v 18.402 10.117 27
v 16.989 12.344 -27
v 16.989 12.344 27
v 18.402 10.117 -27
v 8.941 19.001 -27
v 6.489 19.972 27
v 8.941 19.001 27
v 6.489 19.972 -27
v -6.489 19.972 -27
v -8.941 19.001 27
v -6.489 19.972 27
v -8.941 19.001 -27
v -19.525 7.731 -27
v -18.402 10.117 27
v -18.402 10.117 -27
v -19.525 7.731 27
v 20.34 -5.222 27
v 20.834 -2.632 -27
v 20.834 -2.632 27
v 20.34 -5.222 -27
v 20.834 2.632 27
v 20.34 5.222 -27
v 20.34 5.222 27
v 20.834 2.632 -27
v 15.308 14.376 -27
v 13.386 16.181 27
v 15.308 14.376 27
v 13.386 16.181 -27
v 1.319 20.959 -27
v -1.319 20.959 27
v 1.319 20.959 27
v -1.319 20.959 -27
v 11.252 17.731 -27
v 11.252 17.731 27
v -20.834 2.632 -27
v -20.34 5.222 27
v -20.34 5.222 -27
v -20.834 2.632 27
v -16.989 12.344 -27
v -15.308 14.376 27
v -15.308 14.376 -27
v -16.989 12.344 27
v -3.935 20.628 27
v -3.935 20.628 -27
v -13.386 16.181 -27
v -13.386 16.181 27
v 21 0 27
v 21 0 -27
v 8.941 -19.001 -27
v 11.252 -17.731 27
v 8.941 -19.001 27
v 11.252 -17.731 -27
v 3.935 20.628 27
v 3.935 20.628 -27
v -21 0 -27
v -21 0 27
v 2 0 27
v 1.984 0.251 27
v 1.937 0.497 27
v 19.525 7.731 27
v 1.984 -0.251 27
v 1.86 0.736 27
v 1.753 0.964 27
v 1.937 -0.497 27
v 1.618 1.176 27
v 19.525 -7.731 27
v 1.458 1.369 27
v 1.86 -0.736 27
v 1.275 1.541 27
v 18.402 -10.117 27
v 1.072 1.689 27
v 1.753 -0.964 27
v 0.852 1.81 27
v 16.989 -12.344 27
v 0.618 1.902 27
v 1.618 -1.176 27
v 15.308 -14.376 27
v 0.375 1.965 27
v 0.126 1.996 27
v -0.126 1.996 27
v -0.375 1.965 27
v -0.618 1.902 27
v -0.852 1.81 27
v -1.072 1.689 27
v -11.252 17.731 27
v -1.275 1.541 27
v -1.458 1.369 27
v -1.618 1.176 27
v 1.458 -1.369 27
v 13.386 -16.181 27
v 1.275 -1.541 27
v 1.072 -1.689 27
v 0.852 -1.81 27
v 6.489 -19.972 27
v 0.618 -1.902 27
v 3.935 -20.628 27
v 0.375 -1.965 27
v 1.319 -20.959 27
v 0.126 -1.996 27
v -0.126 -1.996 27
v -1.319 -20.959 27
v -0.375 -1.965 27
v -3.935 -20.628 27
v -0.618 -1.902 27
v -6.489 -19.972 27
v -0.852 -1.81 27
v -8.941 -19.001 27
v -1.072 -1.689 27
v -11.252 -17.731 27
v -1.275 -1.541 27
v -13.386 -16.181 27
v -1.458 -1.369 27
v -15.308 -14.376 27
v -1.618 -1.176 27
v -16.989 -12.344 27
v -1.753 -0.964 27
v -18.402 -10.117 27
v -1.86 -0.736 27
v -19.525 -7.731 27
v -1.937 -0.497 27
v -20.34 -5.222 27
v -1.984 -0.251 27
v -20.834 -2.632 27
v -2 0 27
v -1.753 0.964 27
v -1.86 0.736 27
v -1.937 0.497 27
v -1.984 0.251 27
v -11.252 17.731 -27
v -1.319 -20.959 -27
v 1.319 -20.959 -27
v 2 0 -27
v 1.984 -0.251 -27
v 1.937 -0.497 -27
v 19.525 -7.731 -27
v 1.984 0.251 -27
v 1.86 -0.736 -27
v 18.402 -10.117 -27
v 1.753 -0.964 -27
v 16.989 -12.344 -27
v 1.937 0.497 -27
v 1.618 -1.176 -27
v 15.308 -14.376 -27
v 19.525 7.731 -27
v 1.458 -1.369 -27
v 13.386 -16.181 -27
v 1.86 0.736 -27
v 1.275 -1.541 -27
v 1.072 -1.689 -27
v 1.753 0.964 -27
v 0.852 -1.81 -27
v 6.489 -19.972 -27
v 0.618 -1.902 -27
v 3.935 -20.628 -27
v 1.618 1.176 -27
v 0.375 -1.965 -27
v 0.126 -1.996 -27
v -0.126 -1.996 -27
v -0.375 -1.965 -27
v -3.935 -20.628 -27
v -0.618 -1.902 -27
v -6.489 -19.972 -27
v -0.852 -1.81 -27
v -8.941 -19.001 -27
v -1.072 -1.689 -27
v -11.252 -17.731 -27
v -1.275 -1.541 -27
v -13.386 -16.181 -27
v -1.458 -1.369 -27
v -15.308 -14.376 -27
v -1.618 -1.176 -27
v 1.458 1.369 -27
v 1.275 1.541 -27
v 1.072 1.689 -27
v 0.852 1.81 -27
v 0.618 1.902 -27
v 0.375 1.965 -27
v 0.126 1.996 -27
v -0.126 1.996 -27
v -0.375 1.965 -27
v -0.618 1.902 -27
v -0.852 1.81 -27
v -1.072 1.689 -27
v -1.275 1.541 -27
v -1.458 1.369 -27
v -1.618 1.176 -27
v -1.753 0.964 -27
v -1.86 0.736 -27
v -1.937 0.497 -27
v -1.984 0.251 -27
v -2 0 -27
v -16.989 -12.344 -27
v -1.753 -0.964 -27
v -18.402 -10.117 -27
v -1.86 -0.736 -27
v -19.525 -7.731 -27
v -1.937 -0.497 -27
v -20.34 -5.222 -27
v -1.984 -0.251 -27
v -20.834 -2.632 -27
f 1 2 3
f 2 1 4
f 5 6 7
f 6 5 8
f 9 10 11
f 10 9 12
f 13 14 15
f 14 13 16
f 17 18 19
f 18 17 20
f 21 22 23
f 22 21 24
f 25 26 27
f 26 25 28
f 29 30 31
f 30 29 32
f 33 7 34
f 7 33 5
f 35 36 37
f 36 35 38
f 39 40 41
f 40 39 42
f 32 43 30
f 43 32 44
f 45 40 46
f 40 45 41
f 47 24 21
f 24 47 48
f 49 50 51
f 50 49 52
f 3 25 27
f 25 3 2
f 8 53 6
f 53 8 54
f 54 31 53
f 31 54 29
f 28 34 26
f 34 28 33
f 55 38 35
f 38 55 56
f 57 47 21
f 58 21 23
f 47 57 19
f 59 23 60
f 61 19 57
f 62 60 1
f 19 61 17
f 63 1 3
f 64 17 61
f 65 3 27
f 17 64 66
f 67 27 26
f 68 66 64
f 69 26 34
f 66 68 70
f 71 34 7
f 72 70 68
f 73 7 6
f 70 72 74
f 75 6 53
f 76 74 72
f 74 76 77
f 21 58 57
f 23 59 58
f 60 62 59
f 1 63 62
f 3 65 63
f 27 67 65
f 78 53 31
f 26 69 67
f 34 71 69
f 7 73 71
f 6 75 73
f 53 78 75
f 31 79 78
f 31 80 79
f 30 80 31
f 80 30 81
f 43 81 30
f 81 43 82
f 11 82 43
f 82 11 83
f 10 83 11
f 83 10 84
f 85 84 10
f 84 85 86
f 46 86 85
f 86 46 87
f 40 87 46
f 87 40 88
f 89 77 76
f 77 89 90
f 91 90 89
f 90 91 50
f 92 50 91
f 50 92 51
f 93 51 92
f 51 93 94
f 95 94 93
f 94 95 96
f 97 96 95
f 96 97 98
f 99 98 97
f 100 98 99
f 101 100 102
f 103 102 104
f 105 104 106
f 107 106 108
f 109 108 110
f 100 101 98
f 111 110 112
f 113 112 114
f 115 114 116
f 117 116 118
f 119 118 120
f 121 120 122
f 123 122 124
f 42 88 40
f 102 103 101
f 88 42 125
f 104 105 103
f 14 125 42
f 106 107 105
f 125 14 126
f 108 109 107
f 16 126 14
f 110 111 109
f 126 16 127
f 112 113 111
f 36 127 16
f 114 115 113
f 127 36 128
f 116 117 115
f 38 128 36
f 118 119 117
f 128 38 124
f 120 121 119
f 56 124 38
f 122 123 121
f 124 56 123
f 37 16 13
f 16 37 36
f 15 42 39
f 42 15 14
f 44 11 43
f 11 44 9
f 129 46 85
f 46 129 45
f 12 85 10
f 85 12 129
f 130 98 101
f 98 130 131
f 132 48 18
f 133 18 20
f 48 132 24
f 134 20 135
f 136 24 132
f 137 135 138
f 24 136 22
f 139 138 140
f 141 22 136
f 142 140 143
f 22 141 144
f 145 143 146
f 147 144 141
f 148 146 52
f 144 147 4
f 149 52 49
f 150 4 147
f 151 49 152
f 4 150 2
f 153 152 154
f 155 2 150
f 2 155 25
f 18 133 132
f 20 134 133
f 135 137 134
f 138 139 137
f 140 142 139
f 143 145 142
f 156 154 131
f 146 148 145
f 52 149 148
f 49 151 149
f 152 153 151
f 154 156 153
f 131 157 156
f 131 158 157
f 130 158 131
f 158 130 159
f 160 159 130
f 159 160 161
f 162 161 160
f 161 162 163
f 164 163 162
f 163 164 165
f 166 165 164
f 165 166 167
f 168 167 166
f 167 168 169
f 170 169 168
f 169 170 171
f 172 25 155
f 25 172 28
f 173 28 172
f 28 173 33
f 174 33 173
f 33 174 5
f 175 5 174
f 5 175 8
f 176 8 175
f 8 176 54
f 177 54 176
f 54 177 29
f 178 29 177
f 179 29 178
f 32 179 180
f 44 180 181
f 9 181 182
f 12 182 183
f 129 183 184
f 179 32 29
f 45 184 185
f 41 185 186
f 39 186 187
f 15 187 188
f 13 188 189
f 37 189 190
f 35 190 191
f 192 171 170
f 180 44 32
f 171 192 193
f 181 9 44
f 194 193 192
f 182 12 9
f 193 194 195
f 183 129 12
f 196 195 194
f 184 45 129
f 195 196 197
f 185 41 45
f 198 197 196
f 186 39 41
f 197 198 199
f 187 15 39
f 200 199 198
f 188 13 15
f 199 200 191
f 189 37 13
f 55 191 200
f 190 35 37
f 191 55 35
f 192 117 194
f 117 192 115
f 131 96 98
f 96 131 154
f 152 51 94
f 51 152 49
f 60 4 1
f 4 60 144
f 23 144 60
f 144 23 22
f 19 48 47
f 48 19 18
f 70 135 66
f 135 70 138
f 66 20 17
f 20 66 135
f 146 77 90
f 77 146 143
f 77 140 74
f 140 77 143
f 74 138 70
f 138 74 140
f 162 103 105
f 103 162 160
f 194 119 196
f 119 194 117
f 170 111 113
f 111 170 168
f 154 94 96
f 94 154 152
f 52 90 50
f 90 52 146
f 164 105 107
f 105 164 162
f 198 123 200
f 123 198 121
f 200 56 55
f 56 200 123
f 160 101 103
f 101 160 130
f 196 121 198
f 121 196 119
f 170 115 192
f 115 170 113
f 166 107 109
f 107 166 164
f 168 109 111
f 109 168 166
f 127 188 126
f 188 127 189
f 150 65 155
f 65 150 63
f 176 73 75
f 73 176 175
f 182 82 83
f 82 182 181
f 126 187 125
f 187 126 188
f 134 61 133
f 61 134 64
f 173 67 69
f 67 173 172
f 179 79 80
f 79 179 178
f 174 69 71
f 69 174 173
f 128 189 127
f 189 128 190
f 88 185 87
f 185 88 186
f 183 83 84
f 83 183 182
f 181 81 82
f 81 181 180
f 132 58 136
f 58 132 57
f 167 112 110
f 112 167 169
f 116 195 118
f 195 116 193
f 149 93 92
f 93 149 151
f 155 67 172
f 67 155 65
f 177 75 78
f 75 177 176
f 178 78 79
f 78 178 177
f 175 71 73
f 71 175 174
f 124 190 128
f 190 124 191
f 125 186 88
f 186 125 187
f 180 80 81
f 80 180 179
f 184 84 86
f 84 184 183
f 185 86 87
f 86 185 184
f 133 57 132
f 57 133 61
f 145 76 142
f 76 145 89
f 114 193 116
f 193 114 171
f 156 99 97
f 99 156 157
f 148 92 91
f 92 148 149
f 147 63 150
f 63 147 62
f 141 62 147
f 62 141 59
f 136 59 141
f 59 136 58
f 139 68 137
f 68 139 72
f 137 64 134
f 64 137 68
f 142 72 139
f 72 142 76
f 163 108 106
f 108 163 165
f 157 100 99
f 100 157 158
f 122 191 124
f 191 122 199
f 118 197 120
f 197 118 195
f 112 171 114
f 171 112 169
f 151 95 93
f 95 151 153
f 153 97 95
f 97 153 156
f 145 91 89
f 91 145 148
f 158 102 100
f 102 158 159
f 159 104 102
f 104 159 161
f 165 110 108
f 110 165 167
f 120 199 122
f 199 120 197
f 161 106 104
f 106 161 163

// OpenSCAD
$fn = 50;


difference() {
	union() {
		translate(v = [0, 0, -27.0000000000]) {
			cylinder(h = 54, r = 21.0000000000);
		}
	}
	union() {
		translate(v = [0, 0, -100.0000000000]) {
			cylinder(h = 200, r = 2);
		}
	}
}
